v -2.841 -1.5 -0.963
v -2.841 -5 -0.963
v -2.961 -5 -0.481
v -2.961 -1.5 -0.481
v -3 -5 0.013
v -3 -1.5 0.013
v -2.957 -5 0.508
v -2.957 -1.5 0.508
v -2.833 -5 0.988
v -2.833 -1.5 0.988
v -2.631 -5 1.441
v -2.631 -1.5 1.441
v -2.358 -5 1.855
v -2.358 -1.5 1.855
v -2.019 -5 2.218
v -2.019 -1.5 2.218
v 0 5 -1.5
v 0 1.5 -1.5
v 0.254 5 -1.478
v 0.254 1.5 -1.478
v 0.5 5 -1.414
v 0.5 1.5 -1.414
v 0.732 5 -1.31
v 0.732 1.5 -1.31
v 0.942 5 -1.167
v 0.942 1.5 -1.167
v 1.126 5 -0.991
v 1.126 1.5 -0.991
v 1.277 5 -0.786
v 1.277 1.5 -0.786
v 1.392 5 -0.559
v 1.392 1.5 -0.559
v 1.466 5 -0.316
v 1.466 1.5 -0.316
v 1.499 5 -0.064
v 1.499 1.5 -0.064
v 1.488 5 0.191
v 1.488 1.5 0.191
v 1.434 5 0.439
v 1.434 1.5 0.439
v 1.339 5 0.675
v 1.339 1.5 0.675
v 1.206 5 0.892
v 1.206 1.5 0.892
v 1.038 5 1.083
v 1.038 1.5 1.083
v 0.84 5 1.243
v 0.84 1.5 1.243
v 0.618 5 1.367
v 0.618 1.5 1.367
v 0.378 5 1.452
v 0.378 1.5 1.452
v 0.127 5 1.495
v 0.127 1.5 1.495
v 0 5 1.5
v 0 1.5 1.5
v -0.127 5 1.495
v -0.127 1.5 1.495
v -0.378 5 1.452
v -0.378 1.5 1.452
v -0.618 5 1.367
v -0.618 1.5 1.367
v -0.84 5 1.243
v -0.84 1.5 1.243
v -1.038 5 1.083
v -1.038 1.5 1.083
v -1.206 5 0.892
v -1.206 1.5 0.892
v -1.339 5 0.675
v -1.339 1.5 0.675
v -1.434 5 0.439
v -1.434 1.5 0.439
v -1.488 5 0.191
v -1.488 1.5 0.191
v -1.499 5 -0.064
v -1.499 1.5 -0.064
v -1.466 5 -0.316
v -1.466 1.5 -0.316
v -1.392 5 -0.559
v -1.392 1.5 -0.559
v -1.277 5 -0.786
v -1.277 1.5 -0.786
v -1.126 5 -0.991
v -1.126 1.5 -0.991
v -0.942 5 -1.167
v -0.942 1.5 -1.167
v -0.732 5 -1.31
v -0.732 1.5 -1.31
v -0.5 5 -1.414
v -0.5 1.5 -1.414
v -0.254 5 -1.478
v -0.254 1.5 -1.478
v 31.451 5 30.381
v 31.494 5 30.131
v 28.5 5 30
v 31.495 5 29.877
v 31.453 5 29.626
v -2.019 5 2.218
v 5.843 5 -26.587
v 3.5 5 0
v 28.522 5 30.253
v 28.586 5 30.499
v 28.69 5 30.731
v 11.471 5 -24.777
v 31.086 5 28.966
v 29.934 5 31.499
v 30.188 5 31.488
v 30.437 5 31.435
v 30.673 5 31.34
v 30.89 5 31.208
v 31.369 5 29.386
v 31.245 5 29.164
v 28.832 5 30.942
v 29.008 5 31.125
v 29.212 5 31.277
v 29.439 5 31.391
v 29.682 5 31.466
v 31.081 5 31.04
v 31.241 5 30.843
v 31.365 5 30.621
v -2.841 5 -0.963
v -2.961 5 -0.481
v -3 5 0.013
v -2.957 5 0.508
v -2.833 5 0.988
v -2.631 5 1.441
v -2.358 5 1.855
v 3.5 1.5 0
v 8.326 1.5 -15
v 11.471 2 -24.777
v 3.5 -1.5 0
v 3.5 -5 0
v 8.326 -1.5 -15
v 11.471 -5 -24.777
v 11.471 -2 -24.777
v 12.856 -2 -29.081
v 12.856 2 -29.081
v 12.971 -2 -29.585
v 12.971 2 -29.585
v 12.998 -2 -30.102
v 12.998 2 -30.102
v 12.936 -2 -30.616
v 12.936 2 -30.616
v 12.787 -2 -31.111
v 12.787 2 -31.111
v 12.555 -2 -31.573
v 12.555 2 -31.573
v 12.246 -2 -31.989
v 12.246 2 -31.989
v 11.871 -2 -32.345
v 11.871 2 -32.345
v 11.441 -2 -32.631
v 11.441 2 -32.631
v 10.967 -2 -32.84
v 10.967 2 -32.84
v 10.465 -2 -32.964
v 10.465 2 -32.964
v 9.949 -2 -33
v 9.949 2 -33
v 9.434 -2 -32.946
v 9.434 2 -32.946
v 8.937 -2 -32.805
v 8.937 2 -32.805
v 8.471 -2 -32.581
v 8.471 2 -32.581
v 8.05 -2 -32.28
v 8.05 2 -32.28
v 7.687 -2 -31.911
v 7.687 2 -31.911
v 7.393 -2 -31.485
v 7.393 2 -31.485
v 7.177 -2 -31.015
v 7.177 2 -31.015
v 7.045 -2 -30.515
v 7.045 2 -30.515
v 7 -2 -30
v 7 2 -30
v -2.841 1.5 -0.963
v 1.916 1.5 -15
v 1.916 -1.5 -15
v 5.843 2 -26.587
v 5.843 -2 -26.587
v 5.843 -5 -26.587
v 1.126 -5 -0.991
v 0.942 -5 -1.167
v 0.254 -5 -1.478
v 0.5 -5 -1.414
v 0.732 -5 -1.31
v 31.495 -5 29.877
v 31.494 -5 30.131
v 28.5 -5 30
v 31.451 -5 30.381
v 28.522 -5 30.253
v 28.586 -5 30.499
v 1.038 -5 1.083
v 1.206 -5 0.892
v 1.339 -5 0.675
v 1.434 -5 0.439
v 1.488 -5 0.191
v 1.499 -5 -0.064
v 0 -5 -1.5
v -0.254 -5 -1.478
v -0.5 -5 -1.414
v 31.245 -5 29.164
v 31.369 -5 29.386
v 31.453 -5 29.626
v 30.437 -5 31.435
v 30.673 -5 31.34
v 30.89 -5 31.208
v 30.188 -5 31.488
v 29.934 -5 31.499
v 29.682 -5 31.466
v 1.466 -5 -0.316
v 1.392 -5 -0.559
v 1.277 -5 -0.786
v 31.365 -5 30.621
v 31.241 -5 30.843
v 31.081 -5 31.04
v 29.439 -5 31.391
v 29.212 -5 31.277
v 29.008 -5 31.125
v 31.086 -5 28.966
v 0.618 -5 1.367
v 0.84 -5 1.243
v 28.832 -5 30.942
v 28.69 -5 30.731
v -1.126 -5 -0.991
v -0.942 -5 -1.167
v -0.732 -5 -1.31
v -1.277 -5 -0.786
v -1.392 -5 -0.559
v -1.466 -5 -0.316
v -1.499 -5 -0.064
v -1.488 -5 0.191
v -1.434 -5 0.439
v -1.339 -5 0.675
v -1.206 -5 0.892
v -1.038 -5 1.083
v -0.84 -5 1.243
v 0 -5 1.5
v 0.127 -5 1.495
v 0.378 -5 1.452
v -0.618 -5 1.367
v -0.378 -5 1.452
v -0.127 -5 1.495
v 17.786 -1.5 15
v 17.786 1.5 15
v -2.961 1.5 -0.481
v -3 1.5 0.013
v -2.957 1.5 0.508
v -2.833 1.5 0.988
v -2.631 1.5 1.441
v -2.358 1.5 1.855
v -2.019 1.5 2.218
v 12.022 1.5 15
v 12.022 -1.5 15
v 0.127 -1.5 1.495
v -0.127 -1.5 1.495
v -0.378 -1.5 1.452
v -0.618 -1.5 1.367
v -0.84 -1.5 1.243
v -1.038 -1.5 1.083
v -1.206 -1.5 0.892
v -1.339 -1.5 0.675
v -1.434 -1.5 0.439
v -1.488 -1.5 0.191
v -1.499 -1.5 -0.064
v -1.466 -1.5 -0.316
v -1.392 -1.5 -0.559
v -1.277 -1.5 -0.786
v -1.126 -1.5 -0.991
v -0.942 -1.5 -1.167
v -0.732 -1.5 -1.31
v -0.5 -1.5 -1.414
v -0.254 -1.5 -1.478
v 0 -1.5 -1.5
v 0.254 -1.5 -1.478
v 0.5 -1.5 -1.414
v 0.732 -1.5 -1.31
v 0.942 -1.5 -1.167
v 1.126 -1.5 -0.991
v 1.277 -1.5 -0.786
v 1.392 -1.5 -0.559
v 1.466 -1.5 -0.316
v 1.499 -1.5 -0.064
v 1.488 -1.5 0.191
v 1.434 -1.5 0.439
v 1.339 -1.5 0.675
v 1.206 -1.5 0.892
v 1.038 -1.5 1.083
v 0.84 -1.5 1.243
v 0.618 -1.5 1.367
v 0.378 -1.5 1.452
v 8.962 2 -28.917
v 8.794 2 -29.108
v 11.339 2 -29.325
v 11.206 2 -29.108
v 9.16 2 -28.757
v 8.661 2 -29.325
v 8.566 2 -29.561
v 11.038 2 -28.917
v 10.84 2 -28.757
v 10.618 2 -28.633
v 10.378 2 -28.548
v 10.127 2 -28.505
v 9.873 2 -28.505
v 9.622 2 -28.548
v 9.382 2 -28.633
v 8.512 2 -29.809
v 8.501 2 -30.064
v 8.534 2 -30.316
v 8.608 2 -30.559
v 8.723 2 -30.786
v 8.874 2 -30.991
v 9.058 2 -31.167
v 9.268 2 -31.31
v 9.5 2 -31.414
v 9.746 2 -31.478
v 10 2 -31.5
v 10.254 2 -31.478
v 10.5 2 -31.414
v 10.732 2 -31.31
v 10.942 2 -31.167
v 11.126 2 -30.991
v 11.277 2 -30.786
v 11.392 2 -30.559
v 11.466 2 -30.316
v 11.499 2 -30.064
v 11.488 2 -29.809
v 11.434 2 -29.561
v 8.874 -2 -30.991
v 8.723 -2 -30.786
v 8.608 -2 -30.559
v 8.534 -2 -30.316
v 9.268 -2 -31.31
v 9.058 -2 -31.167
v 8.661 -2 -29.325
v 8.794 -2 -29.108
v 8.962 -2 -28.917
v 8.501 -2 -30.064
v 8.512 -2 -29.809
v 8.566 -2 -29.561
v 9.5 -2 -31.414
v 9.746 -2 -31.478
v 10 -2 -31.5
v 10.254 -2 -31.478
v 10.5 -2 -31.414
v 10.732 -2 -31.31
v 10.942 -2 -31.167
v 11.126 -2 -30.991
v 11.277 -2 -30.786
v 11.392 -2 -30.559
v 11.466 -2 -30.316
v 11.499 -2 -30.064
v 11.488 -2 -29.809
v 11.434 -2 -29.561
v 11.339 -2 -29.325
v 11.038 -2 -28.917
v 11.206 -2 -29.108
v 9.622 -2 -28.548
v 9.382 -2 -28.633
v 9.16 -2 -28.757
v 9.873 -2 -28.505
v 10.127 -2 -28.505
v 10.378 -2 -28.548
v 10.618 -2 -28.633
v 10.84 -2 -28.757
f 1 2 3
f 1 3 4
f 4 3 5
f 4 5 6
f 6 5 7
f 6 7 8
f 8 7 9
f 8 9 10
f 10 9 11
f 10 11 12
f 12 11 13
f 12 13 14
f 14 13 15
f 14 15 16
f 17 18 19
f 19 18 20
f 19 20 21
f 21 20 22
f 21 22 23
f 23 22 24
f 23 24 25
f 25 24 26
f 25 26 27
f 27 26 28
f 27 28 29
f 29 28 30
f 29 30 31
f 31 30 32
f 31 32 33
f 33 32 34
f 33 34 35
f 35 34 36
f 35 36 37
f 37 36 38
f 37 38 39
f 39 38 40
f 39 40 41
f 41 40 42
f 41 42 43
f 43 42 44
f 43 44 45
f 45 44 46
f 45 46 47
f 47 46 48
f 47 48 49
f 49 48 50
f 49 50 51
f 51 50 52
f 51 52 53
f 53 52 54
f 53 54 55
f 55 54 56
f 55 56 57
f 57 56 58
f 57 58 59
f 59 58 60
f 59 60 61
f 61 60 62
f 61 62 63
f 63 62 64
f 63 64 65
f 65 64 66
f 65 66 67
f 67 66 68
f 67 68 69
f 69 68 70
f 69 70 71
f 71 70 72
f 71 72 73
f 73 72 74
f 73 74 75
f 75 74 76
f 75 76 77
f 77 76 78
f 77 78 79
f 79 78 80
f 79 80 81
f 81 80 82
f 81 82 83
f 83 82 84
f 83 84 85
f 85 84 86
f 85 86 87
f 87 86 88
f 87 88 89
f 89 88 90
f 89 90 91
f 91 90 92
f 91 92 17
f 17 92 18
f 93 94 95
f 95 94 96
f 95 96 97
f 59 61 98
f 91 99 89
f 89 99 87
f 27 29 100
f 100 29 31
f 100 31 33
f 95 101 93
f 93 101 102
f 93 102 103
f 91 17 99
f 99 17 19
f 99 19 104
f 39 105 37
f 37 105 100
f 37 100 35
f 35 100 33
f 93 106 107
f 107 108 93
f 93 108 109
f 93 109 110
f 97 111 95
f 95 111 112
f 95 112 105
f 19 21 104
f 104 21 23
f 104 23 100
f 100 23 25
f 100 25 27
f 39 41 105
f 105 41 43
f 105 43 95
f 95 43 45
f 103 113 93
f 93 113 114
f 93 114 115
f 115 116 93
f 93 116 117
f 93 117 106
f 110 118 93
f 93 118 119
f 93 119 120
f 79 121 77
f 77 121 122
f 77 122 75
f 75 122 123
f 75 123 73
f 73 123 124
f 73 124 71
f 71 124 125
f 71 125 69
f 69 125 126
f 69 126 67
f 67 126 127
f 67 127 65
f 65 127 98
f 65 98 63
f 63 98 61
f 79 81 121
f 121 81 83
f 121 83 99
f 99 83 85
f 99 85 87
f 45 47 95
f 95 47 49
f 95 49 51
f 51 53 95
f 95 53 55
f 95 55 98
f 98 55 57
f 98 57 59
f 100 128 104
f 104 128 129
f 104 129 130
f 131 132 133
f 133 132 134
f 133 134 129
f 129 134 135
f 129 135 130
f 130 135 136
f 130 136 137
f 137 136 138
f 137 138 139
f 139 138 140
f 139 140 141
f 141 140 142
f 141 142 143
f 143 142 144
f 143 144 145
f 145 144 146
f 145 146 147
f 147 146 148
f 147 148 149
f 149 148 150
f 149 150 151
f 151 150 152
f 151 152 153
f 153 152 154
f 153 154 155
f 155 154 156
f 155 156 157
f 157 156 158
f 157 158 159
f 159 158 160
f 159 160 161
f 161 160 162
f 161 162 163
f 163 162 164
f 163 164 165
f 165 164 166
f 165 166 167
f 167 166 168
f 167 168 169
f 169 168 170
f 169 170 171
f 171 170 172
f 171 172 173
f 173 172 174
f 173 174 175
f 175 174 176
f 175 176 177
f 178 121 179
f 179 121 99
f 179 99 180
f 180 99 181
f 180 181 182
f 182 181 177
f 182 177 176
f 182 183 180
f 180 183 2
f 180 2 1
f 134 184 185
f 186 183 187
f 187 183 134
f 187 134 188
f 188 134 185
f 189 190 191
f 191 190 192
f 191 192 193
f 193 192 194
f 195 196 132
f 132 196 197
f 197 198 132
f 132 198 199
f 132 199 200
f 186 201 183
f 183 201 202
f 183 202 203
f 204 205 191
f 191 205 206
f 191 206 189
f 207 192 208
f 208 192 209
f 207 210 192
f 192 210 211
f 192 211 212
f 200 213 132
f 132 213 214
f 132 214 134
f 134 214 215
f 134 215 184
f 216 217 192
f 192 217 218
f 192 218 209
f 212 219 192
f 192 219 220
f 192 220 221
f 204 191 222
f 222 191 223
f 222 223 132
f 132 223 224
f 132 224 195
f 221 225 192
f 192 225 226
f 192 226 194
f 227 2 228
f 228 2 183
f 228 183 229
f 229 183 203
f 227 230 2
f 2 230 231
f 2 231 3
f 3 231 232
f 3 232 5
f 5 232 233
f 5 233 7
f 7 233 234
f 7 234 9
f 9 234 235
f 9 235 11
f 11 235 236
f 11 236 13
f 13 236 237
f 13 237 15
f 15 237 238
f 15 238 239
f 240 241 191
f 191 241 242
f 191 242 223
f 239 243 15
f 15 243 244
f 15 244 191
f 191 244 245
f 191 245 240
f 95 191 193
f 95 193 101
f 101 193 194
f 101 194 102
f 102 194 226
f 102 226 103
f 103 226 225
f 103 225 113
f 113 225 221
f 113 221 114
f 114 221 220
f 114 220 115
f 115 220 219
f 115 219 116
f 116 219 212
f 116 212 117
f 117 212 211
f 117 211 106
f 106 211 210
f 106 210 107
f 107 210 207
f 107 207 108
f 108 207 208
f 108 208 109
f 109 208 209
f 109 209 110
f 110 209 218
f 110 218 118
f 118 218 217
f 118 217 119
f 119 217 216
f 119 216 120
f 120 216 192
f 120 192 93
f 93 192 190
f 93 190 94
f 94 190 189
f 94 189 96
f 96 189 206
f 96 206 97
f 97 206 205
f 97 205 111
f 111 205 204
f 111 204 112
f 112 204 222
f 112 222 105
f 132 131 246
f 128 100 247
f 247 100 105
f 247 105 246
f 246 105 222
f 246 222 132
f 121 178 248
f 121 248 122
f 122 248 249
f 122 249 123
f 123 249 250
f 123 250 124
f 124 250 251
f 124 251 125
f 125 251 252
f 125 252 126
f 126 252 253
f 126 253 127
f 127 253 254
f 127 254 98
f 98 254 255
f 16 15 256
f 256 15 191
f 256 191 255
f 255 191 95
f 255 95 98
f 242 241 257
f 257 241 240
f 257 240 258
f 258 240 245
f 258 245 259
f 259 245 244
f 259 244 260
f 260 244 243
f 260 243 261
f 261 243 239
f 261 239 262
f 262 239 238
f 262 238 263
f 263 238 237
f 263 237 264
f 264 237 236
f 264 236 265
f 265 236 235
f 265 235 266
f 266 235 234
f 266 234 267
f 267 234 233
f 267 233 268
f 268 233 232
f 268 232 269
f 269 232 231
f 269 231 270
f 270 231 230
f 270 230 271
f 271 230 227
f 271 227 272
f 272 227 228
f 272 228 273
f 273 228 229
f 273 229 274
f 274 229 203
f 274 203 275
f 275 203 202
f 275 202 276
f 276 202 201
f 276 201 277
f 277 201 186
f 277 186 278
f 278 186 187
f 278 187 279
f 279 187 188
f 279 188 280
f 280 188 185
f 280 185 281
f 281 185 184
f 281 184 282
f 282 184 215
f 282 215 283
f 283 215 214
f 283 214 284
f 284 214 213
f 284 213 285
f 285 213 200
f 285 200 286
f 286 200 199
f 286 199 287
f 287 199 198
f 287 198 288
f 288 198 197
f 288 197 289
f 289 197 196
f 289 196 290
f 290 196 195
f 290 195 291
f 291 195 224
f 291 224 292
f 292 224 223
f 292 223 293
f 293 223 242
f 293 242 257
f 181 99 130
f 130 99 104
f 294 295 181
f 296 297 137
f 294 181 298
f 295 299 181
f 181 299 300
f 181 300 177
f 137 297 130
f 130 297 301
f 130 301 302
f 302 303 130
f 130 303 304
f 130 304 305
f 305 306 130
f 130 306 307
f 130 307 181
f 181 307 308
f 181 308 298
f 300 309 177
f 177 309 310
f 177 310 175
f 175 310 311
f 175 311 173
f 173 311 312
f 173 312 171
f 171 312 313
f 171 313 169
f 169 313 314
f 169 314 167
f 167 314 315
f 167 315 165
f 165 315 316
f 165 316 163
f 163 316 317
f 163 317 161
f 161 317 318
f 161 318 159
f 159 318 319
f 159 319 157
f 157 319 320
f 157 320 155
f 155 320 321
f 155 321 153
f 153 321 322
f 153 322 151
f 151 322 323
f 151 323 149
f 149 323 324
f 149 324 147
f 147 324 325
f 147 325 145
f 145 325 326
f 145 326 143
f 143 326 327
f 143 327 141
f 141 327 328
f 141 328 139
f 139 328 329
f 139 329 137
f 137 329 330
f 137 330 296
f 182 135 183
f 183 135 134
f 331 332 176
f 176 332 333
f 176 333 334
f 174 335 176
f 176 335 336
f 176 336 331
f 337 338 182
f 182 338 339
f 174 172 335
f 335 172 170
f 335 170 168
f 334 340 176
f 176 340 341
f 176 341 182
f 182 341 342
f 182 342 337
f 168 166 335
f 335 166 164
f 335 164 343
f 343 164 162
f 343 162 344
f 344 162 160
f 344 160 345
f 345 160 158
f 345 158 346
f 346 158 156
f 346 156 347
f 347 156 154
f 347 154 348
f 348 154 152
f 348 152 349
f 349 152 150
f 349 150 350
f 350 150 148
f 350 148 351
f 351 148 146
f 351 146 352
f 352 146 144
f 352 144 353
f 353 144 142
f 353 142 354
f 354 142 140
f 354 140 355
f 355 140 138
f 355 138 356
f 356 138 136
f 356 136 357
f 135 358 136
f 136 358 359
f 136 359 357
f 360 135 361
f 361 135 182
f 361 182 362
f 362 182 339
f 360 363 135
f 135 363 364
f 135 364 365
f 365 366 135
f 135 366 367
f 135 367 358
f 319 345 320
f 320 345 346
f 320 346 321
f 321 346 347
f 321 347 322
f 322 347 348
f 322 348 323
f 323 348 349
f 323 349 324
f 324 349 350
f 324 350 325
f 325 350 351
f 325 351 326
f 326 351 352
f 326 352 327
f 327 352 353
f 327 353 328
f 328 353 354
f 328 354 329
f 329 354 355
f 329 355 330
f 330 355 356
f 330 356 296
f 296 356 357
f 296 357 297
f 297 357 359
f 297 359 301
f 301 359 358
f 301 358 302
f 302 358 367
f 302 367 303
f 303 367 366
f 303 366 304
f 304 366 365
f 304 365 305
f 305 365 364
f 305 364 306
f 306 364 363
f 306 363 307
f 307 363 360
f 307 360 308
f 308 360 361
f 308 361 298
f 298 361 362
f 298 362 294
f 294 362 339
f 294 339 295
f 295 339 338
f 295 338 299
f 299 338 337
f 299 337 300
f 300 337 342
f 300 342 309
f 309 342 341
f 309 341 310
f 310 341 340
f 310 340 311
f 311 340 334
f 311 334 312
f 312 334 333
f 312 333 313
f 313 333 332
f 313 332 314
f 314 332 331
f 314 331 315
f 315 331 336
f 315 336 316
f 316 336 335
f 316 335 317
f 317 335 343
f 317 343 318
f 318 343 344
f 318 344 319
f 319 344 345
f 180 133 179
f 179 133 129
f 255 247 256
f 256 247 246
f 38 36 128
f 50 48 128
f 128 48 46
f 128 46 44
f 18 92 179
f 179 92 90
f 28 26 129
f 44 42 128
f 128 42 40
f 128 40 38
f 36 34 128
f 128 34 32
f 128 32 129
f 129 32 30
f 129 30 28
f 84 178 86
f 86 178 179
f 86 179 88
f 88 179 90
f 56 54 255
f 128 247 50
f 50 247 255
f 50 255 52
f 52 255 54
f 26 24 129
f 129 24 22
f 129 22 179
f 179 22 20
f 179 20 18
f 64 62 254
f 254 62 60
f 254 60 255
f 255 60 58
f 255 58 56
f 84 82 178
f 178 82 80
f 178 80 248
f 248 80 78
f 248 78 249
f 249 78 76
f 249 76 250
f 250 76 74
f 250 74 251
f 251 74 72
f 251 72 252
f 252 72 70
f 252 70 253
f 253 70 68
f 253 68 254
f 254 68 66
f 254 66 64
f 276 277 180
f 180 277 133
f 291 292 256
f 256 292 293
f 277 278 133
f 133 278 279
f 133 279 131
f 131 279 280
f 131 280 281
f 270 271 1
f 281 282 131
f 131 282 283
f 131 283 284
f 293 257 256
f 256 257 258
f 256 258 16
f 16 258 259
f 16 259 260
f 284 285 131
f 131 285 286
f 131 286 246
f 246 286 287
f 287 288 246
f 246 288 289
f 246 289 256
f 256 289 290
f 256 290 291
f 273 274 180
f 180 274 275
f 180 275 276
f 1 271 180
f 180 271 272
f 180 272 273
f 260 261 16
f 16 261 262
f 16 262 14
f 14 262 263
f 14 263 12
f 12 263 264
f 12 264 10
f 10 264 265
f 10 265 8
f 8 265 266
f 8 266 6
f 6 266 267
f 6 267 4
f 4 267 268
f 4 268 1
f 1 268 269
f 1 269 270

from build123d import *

# Parameters (mm, degrees)
CROQUIS1_R                 = 1.5
SALIENTE_EXTRUIR1_DEPTH    = 5
CORTAR_EXTRUIR1_DEPTH      = 45.551969752
CORTAR_EXTRUIR1_DEPTH_BACK = 45.551969752
CROQUIS2_W                 = 7.521993914
CROQUIS2_H                 = 3
CORTAR_EXTRUIR2_DEPTH      = 46.893899377
CORTAR_EXTRUIR2_DEPTH_BACK = 46.893899377
CROQUIS3_W                 = 30
CROQUIS3_H                 = 3


with BuildPart() as part:
    # Croquis1 → Saliente-Extruir1 (new, symmetric)
    with BuildSketch(Plane(origin=(0, 0, 0), x_dir=(1, 0, 0), z_dir=(0, 1, 0))):
        with BuildLine():
            Line((28.5, -30), (-2.01947172, -2.218498134))
            ThreePointArc((-2.01947172, -2.218498134), (-2.904664292, -0.750283514), (-2.84125158, 0.962958702))
            Line((-2.84125158, 0.962958702), (7, 30))
            ThreePointArc((7, 30), (10.465003416, 32.963742874), (12.855847882, 29.081232959))
            Line((12.855847882, 29.081232959), (3.5, 0))
            Line((3.5, 0), (31.086206897, -28.965517241))
            ThreePointArc((31.086206897, -28.965517241), (30.557086015, -31.392715036), (28.5, -30))
        make_face()
        with Locations(Location((10, 30, 0), (0, 0, 270))):
            Circle(CROQUIS1_R, mode=Mode.SUBTRACT)
        with Locations(Location((0, 0, 0), (0, 0, 270))):
            Circle(CROQUIS1_R, mode=Mode.SUBTRACT)
    extrude(amount=SALIENTE_EXTRUIR1_DEPTH, both=True)

    # Croquis2 → Cortar-Extruir1 (cut, two sides: drawn at the far end of the back side and taken through both)
    with BuildSketch(Plane(origin=(3.171726104, 0, 1.020389575), x_dir=(0.3062556803556079, 0, -0.9519492939489601), z_dir=(0.9519492939489601, 0, 0.3062556803556079)).offset(-CORTAR_EXTRUIR1_DEPTH_BACK)):
        with Locations((30.860038665, -3.5)):
            Rectangle(CROQUIS2_W, CROQUIS2_H)
        with Locations((30.860038665, 3.5)):
            Rectangle(CROQUIS2_W, CROQUIS2_H)
    extrude(amount=CORTAR_EXTRUIR1_DEPTH + CORTAR_EXTRUIR1_DEPTH_BACK, mode=Mode.SUBTRACT)

    # Croquis3 → Cortar-Extruir2 (cut, two sides: drawn at the far end of the back side and taken through both)
    with BuildSketch(Plane(origin=(0, 0, 0), x_dir=(0, 0, -1), z_dir=(1, 0, 0)).offset(-CORTAR_EXTRUIR2_DEPTH_BACK)):
        Rectangle(CROQUIS3_W, CROQUIS3_H)
    extrude(amount=CORTAR_EXTRUIR2_DEPTH + CORTAR_EXTRUIR2_DEPTH_BACK, mode=Mode.SUBTRACT)


solid = part.part
